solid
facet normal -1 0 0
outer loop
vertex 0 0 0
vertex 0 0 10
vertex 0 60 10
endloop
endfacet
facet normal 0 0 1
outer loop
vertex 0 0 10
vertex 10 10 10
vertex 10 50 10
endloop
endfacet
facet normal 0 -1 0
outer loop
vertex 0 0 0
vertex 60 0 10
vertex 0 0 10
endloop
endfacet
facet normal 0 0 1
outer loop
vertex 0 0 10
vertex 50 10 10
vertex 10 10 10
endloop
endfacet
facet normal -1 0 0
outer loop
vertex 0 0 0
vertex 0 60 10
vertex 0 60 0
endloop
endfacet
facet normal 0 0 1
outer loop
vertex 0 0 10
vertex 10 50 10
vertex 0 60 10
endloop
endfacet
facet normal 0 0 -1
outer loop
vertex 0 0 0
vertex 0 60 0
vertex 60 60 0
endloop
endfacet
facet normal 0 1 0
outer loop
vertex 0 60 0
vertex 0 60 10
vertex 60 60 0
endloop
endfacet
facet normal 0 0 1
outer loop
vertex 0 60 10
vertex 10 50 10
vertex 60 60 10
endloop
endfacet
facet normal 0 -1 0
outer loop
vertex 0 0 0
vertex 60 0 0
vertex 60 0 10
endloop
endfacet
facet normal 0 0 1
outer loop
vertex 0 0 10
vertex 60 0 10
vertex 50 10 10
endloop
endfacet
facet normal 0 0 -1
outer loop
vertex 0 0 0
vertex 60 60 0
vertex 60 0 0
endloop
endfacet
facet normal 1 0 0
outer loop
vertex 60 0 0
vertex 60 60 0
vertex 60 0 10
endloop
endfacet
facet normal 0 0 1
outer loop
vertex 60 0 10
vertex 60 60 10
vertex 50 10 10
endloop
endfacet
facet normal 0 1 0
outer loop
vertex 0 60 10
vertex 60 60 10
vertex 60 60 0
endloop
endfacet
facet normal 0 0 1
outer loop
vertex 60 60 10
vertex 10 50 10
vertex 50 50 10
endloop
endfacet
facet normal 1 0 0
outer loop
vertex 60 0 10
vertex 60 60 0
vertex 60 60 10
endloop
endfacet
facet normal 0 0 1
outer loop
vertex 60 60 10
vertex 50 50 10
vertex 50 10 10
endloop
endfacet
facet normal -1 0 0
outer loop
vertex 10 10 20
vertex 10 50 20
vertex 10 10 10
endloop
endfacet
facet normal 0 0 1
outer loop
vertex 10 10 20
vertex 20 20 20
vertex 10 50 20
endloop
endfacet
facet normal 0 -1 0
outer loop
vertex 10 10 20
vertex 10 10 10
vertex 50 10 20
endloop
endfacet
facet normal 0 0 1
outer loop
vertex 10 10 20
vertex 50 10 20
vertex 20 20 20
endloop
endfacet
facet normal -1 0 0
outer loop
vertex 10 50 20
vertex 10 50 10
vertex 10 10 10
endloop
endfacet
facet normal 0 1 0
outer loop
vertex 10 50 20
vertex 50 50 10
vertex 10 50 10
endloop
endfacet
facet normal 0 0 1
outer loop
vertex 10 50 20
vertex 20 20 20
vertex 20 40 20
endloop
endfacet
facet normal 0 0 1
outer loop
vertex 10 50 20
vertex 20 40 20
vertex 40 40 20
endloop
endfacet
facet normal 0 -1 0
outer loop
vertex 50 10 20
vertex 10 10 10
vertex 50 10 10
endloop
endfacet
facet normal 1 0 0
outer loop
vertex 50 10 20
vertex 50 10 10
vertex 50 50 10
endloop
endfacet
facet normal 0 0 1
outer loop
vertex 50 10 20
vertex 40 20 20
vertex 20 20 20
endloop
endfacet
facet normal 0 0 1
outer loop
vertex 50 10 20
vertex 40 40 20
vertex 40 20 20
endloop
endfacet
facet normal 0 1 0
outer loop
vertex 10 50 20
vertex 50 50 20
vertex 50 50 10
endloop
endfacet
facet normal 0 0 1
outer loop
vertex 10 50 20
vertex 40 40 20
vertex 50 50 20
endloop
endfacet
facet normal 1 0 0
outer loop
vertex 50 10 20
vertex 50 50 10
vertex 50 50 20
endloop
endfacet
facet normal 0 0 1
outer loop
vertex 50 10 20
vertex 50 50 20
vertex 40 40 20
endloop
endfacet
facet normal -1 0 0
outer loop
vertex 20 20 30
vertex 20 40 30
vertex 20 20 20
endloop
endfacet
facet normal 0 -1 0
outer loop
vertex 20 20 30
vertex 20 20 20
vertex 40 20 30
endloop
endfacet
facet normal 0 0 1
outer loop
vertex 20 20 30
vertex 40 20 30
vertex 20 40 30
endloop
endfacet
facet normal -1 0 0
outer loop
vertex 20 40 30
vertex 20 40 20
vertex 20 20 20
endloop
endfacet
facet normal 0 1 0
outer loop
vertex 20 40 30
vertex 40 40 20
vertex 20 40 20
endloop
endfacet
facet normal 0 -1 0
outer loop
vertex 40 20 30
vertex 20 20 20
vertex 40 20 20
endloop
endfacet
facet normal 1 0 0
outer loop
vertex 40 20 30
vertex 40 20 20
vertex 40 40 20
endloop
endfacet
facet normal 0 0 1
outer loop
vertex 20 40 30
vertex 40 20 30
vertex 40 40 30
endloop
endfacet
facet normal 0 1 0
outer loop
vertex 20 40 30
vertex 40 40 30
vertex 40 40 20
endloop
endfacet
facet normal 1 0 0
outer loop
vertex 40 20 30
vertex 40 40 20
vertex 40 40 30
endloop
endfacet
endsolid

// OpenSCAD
// 3段の階段状ピラミッド
// 各段は中心を揃えて積み上げる

union() {
    // 1段目: 60mm × 60mm × 高さ10mm
    translate([0, 0, 0])
        cube([60, 60, 10], center = false);

    // 2段目: 40mm × 40mm × 高さ10mm(中心を揃える)
    translate([10, 10, 10])
        cube([40, 40, 10], center = false);

    // 3段目: 20mm × 20mm × 高さ10mm(中心を揃える)
    translate([20, 20, 20])
        cube([20, 20, 10], center = false);
}
